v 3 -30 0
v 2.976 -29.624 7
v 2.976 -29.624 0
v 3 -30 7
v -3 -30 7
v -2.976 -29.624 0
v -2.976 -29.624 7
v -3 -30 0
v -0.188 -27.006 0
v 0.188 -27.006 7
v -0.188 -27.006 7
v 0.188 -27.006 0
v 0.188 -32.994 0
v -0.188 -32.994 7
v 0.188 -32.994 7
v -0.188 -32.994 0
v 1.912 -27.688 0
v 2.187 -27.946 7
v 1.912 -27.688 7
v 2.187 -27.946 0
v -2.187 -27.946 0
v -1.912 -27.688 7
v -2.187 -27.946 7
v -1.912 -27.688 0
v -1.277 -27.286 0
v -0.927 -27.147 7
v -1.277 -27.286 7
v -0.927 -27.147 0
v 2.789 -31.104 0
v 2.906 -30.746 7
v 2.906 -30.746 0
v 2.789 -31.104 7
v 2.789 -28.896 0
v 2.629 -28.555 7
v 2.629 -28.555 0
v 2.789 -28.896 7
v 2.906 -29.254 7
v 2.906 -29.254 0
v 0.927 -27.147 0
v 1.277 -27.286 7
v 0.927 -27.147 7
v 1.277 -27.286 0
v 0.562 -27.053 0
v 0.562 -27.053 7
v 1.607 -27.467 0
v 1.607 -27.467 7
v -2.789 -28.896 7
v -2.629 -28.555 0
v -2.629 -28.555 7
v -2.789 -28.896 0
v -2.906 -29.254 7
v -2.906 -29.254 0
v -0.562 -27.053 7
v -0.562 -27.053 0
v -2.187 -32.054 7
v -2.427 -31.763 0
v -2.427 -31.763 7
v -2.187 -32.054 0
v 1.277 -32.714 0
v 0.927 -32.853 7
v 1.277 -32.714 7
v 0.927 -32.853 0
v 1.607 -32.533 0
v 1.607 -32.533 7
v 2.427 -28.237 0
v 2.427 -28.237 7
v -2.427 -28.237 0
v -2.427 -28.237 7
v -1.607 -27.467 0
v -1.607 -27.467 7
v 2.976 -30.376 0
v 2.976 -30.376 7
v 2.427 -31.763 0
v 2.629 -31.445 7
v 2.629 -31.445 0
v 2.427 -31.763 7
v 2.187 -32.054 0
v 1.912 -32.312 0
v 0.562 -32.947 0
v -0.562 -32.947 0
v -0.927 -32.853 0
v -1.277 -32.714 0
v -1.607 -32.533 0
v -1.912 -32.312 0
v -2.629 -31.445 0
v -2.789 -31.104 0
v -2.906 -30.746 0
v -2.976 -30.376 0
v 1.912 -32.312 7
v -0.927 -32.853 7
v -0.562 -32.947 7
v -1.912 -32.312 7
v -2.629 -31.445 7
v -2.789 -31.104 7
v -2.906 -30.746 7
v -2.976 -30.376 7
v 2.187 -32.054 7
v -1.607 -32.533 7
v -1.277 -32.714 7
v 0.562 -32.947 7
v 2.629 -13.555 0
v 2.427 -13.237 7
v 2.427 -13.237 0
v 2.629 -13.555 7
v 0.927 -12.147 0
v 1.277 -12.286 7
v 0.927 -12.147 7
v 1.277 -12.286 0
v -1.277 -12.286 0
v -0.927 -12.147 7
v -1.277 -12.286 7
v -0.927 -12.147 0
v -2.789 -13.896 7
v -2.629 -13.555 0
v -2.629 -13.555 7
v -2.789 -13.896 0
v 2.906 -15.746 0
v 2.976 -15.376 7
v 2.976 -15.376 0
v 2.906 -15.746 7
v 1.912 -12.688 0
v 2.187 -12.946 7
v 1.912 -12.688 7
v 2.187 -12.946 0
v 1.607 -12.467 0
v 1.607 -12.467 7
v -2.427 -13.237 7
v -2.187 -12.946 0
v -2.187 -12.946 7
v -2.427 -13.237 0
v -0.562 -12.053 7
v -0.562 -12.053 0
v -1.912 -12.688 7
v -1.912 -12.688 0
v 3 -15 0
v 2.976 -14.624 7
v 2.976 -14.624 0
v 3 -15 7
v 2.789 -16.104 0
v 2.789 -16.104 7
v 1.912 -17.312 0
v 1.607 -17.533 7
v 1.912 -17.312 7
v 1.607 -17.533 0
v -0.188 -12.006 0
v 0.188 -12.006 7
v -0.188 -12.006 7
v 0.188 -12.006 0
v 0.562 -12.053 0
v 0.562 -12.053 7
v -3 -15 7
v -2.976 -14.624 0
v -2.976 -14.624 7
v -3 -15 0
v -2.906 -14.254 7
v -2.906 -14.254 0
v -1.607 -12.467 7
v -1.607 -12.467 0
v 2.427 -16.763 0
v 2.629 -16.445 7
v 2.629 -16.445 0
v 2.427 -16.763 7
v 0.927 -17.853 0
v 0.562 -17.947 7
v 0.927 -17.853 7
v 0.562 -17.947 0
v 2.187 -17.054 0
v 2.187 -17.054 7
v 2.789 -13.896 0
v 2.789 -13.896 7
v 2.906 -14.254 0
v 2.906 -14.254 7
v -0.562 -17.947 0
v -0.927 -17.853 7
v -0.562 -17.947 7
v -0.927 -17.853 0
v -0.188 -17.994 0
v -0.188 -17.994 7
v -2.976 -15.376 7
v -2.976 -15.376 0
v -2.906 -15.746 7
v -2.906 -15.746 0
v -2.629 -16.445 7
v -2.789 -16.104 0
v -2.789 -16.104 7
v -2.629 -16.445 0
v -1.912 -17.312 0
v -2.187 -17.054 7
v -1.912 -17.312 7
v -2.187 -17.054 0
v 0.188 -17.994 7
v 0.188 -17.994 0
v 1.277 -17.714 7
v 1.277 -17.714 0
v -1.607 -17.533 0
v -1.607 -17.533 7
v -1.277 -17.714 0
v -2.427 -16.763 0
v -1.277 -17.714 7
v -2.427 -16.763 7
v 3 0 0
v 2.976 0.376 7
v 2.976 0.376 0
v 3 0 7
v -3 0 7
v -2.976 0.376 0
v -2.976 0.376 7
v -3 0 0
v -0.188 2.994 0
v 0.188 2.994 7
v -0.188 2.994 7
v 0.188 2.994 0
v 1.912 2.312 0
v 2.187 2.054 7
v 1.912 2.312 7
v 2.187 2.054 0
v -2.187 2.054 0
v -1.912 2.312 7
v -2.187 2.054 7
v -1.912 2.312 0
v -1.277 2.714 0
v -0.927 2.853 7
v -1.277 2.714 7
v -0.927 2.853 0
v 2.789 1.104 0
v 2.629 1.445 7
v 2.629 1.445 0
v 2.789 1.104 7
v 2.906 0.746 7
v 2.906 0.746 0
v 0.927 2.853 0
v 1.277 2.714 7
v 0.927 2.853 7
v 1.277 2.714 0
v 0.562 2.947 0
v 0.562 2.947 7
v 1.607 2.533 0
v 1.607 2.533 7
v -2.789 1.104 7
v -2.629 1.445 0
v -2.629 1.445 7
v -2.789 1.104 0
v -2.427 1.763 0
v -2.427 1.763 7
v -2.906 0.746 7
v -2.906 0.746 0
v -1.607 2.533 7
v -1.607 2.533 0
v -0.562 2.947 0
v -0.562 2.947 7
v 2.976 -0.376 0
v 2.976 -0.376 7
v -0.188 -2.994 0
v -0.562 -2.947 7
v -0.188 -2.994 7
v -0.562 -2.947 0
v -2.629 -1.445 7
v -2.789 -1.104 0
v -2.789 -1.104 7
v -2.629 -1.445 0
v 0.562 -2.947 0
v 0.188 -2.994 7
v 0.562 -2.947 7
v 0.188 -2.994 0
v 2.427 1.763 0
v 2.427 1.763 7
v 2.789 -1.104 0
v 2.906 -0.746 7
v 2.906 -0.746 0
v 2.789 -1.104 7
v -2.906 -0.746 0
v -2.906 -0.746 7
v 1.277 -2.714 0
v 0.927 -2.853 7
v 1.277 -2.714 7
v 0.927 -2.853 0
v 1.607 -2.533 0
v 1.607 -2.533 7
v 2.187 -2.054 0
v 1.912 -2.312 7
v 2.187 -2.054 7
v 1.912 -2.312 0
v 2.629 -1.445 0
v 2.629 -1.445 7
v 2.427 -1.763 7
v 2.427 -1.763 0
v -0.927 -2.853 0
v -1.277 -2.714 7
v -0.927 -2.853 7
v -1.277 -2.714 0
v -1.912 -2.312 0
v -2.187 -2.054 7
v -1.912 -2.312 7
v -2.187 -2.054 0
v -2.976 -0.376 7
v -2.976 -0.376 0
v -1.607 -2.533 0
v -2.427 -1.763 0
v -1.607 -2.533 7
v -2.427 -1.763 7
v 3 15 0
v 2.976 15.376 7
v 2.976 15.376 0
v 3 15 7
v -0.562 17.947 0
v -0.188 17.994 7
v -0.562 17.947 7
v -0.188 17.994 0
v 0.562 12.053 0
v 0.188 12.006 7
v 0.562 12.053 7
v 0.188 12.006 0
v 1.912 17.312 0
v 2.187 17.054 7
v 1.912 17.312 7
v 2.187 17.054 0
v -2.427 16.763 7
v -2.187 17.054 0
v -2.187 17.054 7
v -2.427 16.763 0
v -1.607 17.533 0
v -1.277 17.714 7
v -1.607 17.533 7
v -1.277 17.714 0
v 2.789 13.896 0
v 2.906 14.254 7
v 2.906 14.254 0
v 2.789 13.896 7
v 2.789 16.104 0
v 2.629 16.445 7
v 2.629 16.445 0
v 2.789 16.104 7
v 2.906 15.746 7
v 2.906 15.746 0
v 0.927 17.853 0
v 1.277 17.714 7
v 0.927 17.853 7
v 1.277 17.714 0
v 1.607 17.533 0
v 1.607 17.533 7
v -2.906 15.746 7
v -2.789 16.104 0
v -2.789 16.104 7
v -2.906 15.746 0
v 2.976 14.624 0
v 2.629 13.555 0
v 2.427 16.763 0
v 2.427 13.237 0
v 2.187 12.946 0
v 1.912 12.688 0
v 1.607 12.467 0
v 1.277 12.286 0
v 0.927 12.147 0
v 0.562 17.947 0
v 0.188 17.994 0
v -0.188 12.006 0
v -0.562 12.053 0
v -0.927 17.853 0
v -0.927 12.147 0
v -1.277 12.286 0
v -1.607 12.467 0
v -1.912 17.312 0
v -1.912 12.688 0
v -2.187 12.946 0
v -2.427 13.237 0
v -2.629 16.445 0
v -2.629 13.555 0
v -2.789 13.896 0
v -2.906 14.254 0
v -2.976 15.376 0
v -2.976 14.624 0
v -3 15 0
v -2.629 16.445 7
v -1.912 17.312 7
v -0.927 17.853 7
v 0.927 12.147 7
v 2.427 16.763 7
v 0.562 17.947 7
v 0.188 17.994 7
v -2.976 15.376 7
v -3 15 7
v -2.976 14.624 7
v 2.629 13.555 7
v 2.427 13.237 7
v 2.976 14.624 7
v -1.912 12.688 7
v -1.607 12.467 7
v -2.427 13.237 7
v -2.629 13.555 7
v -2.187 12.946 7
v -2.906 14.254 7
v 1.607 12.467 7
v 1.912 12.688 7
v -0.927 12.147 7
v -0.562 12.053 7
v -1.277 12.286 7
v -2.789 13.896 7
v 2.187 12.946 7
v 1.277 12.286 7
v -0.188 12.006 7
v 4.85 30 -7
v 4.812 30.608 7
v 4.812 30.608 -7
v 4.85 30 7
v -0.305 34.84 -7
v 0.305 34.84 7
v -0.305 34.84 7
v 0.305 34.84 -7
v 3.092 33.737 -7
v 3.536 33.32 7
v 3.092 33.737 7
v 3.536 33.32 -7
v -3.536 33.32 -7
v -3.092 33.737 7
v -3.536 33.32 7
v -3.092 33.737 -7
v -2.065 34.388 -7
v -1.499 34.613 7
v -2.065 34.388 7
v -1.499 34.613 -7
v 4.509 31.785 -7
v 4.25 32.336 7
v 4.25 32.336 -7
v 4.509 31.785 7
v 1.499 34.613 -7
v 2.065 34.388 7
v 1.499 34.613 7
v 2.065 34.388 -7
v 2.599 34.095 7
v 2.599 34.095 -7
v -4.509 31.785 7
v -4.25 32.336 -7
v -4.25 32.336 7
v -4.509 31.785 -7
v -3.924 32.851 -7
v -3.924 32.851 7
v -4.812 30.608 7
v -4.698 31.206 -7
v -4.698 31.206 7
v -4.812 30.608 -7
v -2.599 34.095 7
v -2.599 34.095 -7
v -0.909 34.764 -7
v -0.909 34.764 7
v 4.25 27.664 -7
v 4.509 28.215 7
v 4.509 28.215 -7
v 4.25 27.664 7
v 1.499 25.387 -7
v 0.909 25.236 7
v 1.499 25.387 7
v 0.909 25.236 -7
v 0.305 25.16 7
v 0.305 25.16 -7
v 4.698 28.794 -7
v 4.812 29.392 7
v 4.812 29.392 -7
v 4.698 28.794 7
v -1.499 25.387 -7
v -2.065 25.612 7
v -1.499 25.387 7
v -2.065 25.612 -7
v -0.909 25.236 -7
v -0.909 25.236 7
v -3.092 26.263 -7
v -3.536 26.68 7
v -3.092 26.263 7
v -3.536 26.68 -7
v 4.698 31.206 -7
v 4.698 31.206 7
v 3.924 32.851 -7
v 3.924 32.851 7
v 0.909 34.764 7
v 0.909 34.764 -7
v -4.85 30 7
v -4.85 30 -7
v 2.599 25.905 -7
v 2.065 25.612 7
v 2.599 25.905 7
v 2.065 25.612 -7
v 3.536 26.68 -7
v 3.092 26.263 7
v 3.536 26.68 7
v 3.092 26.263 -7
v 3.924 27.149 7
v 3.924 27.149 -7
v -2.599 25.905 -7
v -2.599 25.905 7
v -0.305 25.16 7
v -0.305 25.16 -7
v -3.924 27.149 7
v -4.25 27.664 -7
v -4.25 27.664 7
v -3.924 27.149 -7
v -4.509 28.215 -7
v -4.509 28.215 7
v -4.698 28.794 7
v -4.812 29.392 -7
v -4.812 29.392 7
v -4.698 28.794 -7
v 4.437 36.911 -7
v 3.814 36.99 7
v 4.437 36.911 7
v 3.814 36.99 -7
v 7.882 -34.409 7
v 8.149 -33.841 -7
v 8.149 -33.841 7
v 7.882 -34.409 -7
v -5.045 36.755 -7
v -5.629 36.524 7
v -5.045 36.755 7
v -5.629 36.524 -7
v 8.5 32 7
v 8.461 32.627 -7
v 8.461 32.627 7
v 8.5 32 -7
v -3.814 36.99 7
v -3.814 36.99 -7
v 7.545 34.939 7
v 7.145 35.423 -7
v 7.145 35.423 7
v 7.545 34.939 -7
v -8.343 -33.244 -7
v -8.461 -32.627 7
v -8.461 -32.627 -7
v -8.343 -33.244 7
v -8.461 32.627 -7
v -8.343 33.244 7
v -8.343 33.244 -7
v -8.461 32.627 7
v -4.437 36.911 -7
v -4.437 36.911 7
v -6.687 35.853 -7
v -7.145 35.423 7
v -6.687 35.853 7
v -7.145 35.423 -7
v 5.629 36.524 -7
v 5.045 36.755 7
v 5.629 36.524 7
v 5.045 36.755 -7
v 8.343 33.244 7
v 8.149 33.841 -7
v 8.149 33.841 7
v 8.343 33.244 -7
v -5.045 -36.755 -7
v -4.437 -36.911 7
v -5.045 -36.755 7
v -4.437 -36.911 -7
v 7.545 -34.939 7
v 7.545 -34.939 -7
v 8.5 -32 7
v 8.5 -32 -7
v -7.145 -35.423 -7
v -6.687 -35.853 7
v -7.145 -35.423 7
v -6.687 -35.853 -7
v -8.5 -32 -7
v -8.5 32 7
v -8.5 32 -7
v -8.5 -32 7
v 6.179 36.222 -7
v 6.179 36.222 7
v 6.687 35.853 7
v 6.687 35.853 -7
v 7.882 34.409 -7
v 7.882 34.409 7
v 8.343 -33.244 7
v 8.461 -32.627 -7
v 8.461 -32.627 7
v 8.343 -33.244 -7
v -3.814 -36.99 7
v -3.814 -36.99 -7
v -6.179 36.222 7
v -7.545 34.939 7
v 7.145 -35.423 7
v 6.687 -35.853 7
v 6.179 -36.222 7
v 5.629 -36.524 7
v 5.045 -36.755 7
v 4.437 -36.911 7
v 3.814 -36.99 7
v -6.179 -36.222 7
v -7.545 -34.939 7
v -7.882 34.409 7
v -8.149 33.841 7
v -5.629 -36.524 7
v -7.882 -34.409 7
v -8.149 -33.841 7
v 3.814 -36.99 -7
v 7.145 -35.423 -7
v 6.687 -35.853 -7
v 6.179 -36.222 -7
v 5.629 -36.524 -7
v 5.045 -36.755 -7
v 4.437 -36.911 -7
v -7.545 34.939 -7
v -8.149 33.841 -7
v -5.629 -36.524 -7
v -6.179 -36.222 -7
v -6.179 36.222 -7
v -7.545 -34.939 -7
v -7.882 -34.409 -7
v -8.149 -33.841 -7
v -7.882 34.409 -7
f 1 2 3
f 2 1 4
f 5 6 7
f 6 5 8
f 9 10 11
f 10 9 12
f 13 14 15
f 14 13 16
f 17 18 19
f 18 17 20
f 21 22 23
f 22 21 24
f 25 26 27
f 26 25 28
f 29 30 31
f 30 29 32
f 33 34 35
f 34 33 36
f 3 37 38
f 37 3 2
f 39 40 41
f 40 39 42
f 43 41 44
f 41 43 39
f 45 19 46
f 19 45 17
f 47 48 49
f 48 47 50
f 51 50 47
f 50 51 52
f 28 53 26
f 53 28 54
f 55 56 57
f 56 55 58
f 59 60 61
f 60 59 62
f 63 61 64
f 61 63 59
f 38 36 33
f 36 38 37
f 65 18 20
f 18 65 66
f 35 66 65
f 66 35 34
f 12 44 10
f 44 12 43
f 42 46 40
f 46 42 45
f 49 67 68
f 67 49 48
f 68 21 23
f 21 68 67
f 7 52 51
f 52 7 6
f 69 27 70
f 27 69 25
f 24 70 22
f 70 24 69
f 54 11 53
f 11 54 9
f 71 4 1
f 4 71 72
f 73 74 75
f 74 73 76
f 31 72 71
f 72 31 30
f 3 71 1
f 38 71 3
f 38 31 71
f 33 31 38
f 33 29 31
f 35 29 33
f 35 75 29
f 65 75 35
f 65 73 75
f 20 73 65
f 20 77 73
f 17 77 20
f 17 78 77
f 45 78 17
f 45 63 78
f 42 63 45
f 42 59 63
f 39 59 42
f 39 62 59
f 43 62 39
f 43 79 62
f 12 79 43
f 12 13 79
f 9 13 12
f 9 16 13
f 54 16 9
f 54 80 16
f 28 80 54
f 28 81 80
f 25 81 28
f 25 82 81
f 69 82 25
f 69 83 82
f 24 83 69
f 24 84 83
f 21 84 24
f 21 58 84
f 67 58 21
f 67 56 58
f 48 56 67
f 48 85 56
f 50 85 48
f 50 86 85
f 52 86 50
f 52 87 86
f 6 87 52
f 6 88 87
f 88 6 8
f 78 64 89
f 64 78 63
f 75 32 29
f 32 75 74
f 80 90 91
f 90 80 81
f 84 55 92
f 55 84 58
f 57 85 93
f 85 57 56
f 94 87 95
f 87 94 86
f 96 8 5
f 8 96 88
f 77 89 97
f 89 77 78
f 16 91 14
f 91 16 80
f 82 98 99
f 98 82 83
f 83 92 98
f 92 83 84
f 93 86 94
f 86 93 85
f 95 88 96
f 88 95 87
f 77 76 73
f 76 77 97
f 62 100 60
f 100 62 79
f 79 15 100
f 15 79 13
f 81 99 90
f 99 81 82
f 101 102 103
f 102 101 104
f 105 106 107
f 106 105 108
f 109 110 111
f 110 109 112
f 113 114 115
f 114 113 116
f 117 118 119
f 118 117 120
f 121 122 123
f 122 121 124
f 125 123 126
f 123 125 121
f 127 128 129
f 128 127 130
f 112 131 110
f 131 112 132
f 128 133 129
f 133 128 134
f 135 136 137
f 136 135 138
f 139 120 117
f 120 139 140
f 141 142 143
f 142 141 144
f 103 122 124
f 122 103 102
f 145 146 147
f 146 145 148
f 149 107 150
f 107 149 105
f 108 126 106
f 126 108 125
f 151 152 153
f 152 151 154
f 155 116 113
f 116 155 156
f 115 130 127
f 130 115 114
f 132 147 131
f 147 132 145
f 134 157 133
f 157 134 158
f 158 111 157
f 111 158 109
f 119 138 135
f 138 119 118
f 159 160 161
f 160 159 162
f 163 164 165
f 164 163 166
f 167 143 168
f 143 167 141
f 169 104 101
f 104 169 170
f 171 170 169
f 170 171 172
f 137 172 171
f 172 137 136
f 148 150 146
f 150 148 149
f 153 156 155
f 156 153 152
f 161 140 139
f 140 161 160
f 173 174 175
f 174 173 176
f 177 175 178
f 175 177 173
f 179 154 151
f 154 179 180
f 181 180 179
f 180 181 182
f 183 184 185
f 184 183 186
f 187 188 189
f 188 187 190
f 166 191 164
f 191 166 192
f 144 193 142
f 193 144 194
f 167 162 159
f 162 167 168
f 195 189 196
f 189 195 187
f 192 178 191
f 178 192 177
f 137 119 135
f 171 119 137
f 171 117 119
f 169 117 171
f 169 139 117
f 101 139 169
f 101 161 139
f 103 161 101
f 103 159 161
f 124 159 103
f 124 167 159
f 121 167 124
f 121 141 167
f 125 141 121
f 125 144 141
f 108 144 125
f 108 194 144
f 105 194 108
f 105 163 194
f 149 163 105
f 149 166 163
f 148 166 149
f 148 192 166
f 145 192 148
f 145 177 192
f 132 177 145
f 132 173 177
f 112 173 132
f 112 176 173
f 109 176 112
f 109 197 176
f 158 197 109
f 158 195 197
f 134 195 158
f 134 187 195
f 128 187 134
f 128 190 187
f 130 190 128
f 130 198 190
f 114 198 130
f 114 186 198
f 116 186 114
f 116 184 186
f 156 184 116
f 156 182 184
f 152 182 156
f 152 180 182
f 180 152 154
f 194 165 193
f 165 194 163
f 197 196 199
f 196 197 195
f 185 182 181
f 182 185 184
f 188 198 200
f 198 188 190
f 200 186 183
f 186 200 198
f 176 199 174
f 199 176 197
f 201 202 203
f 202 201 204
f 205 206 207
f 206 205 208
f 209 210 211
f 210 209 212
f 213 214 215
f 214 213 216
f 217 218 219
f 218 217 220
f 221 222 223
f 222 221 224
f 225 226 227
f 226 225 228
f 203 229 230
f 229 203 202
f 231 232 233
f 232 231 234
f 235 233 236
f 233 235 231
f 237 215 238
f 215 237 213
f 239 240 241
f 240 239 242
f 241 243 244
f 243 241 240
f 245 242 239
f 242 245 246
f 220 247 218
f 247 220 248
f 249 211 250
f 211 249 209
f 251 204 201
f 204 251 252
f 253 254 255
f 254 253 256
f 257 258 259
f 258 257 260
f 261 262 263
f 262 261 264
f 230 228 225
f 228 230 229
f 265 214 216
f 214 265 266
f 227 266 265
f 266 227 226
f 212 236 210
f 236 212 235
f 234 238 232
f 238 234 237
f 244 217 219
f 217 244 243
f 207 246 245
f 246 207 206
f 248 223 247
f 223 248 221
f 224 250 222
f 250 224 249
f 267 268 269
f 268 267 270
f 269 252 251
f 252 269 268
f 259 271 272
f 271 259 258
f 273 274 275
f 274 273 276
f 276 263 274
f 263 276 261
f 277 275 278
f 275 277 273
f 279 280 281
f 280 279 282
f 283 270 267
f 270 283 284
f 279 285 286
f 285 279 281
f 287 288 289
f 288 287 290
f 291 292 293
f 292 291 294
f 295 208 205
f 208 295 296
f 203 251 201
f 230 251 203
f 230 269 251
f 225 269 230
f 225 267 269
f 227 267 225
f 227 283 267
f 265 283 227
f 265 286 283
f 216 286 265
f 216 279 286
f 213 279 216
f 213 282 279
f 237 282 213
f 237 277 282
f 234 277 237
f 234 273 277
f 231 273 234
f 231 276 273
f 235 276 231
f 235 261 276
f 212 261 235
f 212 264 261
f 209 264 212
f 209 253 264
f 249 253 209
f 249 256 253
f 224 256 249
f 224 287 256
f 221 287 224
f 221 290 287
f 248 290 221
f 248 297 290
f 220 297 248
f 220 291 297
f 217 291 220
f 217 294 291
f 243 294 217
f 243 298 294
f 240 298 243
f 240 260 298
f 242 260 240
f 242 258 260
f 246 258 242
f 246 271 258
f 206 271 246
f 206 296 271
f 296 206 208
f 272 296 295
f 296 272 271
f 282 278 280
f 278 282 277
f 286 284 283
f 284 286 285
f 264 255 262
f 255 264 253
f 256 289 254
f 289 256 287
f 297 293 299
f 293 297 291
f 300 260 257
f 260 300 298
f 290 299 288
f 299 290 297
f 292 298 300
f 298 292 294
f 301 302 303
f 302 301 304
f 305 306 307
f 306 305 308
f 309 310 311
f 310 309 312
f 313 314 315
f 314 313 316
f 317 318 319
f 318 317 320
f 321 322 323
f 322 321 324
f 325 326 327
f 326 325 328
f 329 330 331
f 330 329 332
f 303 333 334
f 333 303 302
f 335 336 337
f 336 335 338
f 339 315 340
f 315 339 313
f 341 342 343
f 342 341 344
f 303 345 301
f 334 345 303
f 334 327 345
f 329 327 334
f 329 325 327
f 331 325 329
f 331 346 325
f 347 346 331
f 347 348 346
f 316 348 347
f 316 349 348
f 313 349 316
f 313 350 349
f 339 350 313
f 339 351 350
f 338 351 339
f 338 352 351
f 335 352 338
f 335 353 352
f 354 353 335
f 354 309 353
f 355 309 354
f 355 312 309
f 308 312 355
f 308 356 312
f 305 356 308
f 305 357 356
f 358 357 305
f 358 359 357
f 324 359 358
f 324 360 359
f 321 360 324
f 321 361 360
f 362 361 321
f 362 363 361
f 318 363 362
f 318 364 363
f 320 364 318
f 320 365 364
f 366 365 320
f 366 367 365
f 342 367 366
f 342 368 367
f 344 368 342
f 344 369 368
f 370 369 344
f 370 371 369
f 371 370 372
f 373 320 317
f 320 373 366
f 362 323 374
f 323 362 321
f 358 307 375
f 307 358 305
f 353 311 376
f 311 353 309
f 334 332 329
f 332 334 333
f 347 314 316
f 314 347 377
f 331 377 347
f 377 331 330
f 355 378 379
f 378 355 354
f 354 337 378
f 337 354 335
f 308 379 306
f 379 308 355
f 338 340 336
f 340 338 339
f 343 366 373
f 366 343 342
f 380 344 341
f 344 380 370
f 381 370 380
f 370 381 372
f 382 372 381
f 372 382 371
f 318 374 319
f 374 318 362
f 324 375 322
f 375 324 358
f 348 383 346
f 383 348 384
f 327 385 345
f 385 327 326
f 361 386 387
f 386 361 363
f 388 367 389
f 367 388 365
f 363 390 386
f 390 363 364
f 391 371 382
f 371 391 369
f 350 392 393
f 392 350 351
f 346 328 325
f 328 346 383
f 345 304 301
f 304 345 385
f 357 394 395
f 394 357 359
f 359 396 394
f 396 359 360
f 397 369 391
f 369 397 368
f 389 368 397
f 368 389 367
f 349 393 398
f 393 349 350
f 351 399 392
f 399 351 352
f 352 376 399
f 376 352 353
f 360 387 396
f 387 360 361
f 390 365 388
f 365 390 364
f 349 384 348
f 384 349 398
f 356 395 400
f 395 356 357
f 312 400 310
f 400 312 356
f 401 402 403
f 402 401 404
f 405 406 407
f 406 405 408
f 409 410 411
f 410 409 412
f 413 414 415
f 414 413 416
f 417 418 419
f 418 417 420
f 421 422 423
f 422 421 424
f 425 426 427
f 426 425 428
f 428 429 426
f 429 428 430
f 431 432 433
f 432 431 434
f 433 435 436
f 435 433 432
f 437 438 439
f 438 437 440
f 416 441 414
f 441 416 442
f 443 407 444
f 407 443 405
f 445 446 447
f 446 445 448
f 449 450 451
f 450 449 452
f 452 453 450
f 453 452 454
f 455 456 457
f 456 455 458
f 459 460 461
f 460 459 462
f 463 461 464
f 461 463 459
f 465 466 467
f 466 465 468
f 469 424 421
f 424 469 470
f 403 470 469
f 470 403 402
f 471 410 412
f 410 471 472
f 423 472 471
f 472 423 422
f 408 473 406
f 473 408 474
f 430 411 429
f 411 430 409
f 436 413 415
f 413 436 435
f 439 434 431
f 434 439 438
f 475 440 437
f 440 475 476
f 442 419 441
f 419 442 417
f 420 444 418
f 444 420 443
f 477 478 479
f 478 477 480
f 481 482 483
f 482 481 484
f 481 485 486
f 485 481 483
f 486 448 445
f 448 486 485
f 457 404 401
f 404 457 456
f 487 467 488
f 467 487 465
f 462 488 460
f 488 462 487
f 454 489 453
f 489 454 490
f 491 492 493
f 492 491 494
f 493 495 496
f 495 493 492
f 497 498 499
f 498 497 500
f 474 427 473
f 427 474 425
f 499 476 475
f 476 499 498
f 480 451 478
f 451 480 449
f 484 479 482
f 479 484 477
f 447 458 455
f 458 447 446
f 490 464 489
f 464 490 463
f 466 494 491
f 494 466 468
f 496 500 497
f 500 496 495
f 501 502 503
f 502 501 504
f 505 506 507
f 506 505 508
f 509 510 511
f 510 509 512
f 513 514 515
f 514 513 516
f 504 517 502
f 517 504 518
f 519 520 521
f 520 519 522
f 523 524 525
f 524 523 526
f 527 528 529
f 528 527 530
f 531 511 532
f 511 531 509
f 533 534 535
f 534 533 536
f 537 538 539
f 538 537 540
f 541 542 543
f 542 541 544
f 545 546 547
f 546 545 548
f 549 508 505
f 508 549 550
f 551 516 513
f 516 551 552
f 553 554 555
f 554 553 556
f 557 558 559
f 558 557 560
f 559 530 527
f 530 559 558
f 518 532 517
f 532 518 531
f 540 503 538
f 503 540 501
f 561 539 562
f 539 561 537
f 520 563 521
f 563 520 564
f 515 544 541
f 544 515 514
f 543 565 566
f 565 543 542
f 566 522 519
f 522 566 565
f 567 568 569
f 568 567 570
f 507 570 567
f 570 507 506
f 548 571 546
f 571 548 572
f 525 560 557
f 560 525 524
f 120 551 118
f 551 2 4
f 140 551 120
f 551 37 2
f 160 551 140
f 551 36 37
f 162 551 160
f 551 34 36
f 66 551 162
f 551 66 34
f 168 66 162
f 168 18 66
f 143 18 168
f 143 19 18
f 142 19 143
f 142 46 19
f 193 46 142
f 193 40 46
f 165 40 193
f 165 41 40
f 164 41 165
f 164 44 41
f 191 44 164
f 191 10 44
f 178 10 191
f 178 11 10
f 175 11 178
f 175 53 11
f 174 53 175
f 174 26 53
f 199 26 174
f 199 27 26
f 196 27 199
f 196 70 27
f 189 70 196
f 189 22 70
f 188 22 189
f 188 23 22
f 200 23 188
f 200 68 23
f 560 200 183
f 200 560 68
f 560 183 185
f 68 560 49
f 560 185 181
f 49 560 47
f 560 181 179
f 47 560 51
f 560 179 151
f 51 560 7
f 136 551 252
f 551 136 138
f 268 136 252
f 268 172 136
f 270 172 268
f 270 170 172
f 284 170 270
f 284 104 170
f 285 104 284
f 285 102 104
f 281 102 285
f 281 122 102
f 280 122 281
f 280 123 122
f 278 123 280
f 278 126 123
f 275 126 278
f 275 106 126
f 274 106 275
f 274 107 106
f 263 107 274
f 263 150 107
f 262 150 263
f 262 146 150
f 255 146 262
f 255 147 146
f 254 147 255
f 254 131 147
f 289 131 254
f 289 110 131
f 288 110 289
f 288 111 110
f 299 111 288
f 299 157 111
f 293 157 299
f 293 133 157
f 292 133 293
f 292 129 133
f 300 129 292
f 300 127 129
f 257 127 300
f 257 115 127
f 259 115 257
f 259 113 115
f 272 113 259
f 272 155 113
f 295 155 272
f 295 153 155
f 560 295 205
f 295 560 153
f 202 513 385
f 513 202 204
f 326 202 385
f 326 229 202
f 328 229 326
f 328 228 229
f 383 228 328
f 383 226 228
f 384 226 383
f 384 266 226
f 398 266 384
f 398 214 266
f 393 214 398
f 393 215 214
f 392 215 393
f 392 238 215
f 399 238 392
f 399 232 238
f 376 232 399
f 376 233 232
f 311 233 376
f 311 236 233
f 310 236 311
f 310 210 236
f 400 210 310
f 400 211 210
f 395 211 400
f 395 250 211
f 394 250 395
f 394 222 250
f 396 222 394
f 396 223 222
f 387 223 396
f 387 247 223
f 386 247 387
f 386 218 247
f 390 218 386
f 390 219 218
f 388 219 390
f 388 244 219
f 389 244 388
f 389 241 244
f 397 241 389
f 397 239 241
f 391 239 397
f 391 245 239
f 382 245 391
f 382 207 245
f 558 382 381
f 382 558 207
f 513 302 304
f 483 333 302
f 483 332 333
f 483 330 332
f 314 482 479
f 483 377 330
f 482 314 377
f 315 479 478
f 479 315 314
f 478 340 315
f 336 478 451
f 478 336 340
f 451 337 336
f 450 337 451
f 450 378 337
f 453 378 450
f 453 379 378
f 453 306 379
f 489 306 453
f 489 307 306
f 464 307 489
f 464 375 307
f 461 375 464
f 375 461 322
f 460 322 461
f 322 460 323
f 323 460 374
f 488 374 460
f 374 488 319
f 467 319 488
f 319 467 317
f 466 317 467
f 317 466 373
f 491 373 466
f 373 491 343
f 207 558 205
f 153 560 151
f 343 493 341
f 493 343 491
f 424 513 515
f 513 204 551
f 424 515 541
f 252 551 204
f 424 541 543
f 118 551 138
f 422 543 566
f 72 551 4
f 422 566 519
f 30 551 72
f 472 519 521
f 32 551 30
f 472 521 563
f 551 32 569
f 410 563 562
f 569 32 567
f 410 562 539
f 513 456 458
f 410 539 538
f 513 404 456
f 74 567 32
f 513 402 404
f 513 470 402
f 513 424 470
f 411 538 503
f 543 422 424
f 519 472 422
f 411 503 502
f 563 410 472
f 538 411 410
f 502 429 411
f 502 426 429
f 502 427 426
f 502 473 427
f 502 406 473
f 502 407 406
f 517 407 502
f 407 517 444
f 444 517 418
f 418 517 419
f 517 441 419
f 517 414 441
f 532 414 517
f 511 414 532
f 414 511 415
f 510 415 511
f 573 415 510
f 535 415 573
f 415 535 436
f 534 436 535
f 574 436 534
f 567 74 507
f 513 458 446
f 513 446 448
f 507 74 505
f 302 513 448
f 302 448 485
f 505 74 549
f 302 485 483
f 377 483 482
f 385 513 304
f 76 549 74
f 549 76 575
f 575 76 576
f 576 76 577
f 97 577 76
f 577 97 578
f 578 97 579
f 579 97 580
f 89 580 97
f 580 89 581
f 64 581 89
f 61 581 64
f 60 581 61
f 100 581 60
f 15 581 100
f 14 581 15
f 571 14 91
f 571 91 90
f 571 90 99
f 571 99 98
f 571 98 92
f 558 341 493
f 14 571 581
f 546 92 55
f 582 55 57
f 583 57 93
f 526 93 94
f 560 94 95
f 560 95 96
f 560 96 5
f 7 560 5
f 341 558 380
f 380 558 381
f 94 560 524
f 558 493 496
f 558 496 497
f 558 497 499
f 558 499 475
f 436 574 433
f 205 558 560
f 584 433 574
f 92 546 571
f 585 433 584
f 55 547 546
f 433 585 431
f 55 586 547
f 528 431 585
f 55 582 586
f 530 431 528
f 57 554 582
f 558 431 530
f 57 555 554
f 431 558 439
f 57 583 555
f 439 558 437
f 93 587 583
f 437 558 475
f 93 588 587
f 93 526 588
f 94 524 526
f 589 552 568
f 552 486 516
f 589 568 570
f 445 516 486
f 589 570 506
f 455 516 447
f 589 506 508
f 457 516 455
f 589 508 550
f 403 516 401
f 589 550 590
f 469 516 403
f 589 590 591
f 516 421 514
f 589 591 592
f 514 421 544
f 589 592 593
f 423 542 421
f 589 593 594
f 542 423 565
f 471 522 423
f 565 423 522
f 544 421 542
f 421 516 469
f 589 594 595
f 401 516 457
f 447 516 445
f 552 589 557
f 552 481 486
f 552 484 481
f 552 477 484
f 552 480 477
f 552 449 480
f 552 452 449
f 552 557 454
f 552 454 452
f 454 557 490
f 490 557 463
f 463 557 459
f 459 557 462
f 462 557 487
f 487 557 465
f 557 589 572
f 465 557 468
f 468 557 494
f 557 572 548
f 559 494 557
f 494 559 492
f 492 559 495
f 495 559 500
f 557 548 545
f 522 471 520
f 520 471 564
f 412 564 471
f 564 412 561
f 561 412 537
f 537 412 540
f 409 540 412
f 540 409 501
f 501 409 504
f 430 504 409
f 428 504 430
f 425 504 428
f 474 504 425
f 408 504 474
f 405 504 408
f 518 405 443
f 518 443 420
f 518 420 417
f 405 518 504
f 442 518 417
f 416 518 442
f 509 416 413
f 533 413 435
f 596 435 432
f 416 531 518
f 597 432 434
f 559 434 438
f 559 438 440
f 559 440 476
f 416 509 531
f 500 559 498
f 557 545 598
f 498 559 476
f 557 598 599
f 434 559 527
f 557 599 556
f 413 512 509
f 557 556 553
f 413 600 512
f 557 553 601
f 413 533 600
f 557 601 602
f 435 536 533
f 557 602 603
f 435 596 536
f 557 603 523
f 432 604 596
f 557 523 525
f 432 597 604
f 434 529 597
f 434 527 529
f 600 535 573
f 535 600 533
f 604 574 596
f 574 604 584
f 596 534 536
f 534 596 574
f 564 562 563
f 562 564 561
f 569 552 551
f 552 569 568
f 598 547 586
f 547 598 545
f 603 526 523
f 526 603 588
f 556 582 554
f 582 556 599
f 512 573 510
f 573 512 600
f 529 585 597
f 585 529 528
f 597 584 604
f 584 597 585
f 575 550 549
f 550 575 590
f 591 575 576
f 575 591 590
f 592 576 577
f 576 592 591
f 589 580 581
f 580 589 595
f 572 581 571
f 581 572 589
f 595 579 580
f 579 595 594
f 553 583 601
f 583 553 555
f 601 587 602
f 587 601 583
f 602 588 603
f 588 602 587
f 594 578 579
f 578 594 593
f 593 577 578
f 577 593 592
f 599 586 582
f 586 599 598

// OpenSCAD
$fn = 50;


difference() {
	union() {
		translate(v = [0, 0, -7.0000000000]) {
			hull() {
				translate(v = [-3.5000000000, 32.0000000000, 0]) {
					cylinder(h = 14, r = 5);
				}
				translate(v = [3.5000000000, 32.0000000000, 0]) {
					cylinder(h = 14, r = 5);
				}
				translate(v = [-3.5000000000, -32.0000000000, 0]) {
					cylinder(h = 14, r = 5);
				}
				translate(v = [3.5000000000, -32.0000000000, 0]) {
					cylinder(h = 14, r = 5);
				}
			}
		}
	}
	union() {
		translate(v = [0.0000000000, -30.0000000000, 0]) {
			cylinder(h = 100, r = 3.0000000000);
		}
		translate(v = [0.0000000000, -15.0000000000, 0]) {
			cylinder(h = 100, r = 3.0000000000);
		}
		cylinder(h = 100, r = 3.0000000000);
		translate(v = [0.0000000000, 15.0000000000, 0]) {
			cylinder(h = 100, r = 3.0000000000);
		}
		translate(v = [0, 30, -100.0000000000]) {
			cylinder(h = 200, r = 4.8500000000);
		}
	}
}
